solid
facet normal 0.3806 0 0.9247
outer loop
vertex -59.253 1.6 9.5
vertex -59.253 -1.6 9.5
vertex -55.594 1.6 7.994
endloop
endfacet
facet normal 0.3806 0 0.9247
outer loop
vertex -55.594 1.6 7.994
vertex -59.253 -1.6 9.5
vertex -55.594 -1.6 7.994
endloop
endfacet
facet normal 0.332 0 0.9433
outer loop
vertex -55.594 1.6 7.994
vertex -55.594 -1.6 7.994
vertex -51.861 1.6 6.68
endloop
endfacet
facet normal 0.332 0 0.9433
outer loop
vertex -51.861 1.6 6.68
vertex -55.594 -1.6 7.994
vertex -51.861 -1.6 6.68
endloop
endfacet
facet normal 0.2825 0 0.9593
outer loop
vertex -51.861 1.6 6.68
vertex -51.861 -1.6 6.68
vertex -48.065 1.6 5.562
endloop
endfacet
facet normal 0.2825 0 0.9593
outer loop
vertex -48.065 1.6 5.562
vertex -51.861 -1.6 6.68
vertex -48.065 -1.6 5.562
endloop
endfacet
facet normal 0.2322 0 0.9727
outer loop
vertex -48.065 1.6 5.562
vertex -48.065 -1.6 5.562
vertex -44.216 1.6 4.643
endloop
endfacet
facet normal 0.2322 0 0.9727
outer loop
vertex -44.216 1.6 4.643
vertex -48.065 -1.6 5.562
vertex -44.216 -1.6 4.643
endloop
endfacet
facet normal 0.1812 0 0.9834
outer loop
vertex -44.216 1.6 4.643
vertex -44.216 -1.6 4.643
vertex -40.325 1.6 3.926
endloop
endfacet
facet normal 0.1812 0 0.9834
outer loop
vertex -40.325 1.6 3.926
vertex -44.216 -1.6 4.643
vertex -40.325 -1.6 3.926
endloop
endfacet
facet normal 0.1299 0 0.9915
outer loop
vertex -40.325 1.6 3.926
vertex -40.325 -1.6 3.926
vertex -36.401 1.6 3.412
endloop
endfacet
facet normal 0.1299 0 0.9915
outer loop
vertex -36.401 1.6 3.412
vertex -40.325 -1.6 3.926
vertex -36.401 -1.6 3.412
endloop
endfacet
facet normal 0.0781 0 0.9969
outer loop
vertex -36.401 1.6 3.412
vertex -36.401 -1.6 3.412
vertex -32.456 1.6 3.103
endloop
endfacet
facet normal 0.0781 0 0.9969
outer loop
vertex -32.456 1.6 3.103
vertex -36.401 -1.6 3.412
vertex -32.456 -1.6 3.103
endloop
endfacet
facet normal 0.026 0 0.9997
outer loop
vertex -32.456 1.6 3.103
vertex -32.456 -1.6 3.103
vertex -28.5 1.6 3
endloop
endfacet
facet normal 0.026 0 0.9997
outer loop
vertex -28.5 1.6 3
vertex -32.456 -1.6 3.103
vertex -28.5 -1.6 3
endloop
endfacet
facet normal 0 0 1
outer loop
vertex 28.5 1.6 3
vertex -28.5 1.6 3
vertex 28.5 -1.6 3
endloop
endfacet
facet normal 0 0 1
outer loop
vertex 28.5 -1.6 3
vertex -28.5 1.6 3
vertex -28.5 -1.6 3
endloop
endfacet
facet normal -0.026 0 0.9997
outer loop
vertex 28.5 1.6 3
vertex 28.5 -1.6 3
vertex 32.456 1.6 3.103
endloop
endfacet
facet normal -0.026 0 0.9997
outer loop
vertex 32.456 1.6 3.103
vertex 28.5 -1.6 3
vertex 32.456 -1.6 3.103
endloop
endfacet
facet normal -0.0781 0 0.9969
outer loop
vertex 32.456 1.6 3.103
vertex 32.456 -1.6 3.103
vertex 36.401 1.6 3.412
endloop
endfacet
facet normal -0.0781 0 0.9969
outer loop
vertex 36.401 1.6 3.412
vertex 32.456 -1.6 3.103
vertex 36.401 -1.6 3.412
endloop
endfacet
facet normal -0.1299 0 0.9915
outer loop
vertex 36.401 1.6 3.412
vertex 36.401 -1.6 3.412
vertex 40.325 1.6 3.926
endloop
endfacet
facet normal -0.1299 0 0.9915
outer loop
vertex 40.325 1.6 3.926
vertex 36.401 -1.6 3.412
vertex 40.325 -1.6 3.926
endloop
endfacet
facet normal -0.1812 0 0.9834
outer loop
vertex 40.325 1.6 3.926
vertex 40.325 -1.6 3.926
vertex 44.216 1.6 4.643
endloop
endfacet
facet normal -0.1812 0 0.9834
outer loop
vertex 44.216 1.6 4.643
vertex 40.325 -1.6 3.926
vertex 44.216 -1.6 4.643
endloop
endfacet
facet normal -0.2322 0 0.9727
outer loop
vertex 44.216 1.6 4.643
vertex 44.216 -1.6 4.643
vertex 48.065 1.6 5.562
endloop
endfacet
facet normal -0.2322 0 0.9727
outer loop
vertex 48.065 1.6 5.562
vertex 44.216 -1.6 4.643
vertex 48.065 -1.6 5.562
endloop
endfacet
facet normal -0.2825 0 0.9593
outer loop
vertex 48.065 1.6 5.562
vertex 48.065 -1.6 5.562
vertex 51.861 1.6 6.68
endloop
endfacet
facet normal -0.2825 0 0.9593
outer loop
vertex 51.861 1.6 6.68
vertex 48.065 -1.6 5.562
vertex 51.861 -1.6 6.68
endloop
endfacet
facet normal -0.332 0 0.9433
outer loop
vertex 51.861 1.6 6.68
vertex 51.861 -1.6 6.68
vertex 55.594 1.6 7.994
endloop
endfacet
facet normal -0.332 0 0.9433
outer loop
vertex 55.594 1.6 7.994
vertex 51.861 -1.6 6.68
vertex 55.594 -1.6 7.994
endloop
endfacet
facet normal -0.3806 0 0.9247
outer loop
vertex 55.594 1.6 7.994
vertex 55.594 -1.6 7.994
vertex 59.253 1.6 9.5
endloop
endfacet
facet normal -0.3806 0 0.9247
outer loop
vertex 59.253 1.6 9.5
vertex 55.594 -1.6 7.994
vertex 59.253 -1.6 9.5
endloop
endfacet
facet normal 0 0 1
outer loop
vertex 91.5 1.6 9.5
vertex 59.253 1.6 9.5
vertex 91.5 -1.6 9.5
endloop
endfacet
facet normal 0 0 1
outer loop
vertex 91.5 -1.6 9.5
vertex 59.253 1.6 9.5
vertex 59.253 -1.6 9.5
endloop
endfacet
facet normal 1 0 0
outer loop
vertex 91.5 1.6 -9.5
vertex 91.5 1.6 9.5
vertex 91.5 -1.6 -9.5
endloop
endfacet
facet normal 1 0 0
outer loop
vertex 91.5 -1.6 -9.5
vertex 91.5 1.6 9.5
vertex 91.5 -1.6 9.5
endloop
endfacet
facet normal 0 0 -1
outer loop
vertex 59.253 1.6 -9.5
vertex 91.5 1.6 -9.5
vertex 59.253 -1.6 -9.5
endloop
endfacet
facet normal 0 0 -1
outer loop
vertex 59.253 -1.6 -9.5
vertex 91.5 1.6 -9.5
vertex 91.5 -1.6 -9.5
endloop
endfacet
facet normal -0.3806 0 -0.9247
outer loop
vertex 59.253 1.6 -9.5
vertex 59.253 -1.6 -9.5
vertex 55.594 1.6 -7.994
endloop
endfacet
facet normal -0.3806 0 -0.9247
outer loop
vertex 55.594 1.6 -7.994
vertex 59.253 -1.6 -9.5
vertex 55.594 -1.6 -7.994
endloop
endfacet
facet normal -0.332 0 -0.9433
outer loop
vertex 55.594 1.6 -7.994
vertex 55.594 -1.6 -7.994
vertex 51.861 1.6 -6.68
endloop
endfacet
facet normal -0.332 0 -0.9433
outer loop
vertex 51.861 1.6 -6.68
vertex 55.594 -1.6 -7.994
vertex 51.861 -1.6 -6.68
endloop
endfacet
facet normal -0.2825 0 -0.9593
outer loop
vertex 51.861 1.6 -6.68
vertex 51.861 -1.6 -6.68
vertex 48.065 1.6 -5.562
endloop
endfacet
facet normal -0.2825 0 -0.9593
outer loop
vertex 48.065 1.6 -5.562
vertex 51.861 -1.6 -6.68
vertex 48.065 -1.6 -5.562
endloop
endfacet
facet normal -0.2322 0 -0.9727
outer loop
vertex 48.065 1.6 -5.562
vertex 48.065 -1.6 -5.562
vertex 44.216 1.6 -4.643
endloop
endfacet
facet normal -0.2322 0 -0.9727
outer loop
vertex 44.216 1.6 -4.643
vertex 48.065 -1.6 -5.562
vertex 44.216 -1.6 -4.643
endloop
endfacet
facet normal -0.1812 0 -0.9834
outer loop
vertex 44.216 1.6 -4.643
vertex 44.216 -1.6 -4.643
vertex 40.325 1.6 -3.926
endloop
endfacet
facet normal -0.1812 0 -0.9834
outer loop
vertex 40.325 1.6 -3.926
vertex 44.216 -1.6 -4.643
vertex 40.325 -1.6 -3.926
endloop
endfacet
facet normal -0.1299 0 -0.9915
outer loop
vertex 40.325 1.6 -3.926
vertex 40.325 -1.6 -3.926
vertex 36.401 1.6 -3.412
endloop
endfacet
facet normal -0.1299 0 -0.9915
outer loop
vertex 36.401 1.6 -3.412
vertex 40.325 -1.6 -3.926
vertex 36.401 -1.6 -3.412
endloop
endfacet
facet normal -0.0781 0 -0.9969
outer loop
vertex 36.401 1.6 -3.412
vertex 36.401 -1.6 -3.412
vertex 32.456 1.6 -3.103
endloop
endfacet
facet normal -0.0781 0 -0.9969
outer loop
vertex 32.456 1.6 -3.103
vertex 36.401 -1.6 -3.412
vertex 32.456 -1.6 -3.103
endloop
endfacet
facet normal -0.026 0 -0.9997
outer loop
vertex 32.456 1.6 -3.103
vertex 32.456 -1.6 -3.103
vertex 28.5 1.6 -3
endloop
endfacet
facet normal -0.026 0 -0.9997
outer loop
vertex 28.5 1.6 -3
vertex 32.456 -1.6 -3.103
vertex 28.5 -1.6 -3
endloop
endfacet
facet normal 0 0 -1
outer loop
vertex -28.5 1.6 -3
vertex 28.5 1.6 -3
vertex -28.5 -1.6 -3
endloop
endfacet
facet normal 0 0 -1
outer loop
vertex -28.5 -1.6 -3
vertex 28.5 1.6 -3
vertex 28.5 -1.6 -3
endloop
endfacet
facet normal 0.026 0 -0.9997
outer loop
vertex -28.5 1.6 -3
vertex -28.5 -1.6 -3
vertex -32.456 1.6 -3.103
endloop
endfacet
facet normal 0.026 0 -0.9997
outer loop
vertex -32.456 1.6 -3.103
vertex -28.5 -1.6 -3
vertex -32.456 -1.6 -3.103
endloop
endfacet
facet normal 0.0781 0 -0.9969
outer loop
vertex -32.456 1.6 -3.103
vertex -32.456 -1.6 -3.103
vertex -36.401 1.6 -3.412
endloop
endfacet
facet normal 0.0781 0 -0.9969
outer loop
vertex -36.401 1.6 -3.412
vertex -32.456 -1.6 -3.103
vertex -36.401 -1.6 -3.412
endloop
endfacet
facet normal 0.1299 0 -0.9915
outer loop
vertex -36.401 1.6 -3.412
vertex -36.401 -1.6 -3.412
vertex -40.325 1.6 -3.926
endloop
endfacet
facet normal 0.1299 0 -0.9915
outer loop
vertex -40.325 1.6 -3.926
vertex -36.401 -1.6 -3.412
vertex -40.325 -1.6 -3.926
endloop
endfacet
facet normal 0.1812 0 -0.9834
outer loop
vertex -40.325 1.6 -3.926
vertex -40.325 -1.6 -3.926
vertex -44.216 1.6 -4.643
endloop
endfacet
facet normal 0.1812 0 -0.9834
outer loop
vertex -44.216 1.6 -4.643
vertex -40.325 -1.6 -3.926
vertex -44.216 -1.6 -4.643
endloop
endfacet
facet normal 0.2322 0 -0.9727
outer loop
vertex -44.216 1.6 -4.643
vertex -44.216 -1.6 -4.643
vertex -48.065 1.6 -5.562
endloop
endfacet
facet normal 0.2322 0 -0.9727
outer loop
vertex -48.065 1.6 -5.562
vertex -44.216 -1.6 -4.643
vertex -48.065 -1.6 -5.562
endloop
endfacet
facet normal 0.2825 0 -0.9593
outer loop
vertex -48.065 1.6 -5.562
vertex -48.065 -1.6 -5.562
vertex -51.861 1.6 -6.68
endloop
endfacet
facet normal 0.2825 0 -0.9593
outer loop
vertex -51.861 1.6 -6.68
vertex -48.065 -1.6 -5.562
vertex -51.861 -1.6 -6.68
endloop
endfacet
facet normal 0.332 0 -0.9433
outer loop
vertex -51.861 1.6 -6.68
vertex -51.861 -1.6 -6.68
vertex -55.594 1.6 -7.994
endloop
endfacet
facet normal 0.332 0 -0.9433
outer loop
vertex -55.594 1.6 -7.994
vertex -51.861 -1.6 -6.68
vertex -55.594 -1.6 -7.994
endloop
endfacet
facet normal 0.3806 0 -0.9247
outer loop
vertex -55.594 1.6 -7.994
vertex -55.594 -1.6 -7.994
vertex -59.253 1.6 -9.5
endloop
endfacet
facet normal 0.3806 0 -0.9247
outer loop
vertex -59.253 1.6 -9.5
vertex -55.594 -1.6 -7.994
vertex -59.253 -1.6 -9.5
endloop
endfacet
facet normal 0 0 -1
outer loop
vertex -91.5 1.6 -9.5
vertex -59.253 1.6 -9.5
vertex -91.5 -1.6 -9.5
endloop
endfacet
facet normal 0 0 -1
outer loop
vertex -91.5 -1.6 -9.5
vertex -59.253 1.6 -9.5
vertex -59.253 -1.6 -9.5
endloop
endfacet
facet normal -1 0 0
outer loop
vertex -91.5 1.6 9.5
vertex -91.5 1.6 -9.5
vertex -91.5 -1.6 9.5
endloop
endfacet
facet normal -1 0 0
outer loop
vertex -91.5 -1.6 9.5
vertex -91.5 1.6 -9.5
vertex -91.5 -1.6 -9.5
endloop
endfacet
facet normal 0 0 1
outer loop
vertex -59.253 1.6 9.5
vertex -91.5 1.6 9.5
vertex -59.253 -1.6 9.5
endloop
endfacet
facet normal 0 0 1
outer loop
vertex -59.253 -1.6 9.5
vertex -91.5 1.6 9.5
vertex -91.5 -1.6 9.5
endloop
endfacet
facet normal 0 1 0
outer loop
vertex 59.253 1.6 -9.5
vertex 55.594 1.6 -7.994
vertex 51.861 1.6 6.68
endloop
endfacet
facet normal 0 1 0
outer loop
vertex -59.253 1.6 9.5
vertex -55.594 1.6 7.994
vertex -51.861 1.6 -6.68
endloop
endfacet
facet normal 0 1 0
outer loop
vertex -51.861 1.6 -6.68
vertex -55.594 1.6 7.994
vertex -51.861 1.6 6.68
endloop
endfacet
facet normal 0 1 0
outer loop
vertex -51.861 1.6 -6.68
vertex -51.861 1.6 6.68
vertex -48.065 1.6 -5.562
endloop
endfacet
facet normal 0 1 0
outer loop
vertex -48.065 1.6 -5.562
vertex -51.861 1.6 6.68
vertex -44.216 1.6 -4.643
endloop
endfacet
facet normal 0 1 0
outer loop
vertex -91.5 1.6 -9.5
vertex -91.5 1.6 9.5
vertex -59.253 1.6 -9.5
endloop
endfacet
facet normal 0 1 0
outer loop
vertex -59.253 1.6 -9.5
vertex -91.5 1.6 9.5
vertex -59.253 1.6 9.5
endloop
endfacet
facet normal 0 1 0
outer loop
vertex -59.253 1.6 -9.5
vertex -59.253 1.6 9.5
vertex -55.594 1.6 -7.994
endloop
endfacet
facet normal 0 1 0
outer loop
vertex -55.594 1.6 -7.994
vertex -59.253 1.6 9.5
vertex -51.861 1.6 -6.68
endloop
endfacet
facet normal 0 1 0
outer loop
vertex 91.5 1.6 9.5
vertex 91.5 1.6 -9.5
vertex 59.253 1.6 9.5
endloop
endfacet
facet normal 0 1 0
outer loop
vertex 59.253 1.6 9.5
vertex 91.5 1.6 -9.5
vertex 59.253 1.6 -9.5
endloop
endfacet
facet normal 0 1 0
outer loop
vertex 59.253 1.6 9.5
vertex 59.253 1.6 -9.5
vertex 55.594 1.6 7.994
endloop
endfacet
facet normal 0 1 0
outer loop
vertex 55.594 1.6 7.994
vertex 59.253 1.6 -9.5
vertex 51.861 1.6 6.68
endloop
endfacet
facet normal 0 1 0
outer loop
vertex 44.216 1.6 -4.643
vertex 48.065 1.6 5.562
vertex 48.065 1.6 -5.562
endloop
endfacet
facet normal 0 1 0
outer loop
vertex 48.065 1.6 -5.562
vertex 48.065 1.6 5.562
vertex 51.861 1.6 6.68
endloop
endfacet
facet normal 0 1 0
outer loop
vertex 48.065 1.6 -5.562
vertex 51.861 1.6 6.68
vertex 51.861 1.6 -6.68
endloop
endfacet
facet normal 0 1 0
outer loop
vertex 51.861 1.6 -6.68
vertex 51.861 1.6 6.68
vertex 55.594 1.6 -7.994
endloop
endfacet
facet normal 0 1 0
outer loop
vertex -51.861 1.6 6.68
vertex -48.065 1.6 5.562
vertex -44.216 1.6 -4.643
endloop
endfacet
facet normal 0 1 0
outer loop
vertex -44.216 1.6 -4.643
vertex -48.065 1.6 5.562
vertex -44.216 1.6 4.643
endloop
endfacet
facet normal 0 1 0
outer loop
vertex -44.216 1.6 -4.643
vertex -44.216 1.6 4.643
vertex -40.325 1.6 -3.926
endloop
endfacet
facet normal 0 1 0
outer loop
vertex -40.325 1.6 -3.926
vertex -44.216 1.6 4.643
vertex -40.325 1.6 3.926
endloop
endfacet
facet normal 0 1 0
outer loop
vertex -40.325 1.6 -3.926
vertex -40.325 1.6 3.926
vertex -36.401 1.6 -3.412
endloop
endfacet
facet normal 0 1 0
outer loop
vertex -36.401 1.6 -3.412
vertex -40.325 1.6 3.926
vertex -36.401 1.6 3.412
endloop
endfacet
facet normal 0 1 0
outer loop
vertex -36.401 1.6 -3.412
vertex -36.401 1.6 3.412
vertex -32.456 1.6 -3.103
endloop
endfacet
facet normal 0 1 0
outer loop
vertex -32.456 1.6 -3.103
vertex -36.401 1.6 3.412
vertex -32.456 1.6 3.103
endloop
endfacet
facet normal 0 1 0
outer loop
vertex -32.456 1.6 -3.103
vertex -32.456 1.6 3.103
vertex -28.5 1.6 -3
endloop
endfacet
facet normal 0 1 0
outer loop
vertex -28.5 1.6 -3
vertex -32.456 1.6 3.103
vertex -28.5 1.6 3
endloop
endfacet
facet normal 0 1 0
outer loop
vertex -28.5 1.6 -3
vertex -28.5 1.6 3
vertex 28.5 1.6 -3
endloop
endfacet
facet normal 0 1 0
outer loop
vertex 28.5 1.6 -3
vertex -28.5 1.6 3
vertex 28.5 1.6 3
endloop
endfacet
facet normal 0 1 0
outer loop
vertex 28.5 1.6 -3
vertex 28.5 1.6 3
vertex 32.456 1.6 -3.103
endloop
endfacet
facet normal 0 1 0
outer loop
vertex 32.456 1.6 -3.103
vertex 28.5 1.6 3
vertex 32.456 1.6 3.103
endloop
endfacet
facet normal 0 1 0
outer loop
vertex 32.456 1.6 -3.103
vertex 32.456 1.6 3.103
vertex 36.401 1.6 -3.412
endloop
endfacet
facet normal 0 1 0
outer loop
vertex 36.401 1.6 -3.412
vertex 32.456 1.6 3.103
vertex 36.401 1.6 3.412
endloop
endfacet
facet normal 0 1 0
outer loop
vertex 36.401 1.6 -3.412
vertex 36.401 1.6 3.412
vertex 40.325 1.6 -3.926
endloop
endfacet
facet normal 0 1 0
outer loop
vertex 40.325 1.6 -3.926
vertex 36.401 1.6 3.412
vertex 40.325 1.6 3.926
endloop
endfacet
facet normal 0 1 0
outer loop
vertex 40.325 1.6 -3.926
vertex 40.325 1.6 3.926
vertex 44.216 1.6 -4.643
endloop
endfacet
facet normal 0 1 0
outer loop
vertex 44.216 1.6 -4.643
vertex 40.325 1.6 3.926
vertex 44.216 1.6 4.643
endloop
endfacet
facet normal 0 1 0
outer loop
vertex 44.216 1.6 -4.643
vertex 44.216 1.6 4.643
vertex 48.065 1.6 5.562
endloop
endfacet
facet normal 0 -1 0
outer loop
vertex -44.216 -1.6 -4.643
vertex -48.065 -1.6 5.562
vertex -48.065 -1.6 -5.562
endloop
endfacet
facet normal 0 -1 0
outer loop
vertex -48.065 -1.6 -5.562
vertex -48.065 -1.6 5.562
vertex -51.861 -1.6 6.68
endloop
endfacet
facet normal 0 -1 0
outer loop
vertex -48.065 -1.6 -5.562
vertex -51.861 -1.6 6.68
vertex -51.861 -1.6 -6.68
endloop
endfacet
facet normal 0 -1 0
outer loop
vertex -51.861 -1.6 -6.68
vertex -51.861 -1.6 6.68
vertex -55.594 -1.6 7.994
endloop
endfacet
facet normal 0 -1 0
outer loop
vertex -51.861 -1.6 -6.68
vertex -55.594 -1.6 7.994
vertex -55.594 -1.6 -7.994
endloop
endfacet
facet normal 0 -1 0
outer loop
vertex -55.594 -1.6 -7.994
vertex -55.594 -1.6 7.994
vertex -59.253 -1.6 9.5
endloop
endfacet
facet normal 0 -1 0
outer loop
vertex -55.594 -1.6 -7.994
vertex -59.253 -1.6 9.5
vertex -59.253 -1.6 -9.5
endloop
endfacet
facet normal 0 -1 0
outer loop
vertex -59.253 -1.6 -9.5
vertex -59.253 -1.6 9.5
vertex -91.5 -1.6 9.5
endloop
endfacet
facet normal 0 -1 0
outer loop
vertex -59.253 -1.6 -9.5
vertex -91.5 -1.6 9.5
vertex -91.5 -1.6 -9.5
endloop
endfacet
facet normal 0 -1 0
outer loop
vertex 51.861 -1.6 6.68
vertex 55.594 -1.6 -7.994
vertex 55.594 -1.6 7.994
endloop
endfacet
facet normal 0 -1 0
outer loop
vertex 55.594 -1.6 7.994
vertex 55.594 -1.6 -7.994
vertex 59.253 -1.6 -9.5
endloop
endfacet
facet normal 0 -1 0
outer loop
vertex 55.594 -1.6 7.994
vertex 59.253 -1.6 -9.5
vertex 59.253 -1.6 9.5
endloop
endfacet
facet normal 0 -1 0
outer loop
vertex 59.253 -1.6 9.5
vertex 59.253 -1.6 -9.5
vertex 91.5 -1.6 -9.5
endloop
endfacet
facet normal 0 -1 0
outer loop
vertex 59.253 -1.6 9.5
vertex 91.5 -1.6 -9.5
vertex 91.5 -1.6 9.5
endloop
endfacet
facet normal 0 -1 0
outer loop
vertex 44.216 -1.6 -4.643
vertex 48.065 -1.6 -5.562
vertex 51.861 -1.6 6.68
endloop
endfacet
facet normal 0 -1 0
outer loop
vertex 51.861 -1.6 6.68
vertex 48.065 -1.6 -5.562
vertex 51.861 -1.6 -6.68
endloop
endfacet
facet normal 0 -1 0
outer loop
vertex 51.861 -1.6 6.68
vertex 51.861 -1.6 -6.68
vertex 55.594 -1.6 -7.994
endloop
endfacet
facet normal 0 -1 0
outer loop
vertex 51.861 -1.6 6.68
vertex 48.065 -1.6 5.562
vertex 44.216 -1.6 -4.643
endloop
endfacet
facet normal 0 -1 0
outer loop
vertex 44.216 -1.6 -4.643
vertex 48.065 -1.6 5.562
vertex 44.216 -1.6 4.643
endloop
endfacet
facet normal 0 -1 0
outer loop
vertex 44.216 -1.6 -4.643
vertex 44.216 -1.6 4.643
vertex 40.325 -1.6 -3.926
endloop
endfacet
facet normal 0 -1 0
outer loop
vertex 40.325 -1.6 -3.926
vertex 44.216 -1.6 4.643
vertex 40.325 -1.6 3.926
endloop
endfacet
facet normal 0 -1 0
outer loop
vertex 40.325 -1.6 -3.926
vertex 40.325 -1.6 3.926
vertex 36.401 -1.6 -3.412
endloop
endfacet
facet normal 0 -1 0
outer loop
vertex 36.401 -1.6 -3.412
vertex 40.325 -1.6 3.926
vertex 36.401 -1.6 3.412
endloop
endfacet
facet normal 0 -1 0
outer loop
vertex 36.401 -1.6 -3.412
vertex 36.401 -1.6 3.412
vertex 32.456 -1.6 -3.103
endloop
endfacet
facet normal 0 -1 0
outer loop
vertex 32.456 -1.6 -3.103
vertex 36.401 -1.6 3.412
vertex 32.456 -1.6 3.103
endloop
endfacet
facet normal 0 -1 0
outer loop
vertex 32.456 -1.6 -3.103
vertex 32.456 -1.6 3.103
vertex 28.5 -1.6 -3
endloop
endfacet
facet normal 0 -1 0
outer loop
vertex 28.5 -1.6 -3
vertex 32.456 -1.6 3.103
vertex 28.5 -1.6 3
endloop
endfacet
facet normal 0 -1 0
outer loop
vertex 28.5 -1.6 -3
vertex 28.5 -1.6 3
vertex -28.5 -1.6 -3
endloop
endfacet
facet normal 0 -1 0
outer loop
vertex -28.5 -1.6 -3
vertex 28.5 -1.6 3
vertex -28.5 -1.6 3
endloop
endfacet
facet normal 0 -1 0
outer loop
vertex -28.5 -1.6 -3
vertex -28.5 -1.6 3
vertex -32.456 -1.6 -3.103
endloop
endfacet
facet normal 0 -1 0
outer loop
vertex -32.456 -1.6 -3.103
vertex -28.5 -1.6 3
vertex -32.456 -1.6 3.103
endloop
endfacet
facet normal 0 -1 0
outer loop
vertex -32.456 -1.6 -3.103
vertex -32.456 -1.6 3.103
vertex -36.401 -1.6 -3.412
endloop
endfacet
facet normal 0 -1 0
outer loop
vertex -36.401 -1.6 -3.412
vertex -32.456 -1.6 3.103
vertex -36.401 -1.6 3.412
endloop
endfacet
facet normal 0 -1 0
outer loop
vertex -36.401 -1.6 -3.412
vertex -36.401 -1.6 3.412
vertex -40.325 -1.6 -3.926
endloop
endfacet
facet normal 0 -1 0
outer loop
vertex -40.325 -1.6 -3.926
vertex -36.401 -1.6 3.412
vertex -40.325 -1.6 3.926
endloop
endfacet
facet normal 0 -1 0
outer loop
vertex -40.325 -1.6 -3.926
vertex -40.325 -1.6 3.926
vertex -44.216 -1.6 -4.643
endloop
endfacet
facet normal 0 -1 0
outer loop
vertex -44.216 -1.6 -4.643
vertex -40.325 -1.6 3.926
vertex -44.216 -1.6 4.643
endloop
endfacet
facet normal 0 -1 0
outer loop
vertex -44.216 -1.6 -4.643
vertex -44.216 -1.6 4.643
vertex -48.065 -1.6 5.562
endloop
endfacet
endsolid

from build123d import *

# Parameters (mm, degrees)
CROQUIS1_W              = 57
CROQUIS1_H              = 6
SALIENTE_EXTRUIR1_DEPTH = 1.6


with BuildPart() as part:
    # Croquis1 → Saliente-Extruir1 (new body, symmetric)
    with BuildSketch(Plane(origin=(0, 0, 0), x_dir=(1, 0, 0), z_dir=(0, 1, 0))):
        with BuildLine():
            Line((-91.5, -9.5), (-59.253048629, -9.5))
            ThreePointArc((-59.253048629, -9.5), (-44.216233646, -4.64275422), (-28.5, -3))
            Line((-28.5, -3), (-28.5, 3))
            ThreePointArc((-28.5, 3), (-44.216233646, 4.64275422), (-59.253048629, 9.5))
            Line((-59.253048629, 9.5), (-91.5, 9.5))
            Line((-91.5, 9.5), (-91.5, -9.5))
        make_face()
        with BuildLine():
            Line((59.253048629, -9.5), (91.5, -9.5))
            Line((91.5, -9.5), (91.5, 9.5))
            Line((91.5, 9.5), (59.253048629, 9.5))
            ThreePointArc((59.253048629, 9.5), (44.216233646, 4.64275422), (28.5, 3))
            Line((28.5, 3), (28.5, -3))
            ThreePointArc((28.5, -3), (44.216233646, -4.64275422), (59.253048629, -9.5))
        make_face()
        Rectangle(CROQUIS1_W, CROQUIS1_H)
    extrude(amount=SALIENTE_EXTRUIR1_DEPTH, both=True)


solid = part.part
